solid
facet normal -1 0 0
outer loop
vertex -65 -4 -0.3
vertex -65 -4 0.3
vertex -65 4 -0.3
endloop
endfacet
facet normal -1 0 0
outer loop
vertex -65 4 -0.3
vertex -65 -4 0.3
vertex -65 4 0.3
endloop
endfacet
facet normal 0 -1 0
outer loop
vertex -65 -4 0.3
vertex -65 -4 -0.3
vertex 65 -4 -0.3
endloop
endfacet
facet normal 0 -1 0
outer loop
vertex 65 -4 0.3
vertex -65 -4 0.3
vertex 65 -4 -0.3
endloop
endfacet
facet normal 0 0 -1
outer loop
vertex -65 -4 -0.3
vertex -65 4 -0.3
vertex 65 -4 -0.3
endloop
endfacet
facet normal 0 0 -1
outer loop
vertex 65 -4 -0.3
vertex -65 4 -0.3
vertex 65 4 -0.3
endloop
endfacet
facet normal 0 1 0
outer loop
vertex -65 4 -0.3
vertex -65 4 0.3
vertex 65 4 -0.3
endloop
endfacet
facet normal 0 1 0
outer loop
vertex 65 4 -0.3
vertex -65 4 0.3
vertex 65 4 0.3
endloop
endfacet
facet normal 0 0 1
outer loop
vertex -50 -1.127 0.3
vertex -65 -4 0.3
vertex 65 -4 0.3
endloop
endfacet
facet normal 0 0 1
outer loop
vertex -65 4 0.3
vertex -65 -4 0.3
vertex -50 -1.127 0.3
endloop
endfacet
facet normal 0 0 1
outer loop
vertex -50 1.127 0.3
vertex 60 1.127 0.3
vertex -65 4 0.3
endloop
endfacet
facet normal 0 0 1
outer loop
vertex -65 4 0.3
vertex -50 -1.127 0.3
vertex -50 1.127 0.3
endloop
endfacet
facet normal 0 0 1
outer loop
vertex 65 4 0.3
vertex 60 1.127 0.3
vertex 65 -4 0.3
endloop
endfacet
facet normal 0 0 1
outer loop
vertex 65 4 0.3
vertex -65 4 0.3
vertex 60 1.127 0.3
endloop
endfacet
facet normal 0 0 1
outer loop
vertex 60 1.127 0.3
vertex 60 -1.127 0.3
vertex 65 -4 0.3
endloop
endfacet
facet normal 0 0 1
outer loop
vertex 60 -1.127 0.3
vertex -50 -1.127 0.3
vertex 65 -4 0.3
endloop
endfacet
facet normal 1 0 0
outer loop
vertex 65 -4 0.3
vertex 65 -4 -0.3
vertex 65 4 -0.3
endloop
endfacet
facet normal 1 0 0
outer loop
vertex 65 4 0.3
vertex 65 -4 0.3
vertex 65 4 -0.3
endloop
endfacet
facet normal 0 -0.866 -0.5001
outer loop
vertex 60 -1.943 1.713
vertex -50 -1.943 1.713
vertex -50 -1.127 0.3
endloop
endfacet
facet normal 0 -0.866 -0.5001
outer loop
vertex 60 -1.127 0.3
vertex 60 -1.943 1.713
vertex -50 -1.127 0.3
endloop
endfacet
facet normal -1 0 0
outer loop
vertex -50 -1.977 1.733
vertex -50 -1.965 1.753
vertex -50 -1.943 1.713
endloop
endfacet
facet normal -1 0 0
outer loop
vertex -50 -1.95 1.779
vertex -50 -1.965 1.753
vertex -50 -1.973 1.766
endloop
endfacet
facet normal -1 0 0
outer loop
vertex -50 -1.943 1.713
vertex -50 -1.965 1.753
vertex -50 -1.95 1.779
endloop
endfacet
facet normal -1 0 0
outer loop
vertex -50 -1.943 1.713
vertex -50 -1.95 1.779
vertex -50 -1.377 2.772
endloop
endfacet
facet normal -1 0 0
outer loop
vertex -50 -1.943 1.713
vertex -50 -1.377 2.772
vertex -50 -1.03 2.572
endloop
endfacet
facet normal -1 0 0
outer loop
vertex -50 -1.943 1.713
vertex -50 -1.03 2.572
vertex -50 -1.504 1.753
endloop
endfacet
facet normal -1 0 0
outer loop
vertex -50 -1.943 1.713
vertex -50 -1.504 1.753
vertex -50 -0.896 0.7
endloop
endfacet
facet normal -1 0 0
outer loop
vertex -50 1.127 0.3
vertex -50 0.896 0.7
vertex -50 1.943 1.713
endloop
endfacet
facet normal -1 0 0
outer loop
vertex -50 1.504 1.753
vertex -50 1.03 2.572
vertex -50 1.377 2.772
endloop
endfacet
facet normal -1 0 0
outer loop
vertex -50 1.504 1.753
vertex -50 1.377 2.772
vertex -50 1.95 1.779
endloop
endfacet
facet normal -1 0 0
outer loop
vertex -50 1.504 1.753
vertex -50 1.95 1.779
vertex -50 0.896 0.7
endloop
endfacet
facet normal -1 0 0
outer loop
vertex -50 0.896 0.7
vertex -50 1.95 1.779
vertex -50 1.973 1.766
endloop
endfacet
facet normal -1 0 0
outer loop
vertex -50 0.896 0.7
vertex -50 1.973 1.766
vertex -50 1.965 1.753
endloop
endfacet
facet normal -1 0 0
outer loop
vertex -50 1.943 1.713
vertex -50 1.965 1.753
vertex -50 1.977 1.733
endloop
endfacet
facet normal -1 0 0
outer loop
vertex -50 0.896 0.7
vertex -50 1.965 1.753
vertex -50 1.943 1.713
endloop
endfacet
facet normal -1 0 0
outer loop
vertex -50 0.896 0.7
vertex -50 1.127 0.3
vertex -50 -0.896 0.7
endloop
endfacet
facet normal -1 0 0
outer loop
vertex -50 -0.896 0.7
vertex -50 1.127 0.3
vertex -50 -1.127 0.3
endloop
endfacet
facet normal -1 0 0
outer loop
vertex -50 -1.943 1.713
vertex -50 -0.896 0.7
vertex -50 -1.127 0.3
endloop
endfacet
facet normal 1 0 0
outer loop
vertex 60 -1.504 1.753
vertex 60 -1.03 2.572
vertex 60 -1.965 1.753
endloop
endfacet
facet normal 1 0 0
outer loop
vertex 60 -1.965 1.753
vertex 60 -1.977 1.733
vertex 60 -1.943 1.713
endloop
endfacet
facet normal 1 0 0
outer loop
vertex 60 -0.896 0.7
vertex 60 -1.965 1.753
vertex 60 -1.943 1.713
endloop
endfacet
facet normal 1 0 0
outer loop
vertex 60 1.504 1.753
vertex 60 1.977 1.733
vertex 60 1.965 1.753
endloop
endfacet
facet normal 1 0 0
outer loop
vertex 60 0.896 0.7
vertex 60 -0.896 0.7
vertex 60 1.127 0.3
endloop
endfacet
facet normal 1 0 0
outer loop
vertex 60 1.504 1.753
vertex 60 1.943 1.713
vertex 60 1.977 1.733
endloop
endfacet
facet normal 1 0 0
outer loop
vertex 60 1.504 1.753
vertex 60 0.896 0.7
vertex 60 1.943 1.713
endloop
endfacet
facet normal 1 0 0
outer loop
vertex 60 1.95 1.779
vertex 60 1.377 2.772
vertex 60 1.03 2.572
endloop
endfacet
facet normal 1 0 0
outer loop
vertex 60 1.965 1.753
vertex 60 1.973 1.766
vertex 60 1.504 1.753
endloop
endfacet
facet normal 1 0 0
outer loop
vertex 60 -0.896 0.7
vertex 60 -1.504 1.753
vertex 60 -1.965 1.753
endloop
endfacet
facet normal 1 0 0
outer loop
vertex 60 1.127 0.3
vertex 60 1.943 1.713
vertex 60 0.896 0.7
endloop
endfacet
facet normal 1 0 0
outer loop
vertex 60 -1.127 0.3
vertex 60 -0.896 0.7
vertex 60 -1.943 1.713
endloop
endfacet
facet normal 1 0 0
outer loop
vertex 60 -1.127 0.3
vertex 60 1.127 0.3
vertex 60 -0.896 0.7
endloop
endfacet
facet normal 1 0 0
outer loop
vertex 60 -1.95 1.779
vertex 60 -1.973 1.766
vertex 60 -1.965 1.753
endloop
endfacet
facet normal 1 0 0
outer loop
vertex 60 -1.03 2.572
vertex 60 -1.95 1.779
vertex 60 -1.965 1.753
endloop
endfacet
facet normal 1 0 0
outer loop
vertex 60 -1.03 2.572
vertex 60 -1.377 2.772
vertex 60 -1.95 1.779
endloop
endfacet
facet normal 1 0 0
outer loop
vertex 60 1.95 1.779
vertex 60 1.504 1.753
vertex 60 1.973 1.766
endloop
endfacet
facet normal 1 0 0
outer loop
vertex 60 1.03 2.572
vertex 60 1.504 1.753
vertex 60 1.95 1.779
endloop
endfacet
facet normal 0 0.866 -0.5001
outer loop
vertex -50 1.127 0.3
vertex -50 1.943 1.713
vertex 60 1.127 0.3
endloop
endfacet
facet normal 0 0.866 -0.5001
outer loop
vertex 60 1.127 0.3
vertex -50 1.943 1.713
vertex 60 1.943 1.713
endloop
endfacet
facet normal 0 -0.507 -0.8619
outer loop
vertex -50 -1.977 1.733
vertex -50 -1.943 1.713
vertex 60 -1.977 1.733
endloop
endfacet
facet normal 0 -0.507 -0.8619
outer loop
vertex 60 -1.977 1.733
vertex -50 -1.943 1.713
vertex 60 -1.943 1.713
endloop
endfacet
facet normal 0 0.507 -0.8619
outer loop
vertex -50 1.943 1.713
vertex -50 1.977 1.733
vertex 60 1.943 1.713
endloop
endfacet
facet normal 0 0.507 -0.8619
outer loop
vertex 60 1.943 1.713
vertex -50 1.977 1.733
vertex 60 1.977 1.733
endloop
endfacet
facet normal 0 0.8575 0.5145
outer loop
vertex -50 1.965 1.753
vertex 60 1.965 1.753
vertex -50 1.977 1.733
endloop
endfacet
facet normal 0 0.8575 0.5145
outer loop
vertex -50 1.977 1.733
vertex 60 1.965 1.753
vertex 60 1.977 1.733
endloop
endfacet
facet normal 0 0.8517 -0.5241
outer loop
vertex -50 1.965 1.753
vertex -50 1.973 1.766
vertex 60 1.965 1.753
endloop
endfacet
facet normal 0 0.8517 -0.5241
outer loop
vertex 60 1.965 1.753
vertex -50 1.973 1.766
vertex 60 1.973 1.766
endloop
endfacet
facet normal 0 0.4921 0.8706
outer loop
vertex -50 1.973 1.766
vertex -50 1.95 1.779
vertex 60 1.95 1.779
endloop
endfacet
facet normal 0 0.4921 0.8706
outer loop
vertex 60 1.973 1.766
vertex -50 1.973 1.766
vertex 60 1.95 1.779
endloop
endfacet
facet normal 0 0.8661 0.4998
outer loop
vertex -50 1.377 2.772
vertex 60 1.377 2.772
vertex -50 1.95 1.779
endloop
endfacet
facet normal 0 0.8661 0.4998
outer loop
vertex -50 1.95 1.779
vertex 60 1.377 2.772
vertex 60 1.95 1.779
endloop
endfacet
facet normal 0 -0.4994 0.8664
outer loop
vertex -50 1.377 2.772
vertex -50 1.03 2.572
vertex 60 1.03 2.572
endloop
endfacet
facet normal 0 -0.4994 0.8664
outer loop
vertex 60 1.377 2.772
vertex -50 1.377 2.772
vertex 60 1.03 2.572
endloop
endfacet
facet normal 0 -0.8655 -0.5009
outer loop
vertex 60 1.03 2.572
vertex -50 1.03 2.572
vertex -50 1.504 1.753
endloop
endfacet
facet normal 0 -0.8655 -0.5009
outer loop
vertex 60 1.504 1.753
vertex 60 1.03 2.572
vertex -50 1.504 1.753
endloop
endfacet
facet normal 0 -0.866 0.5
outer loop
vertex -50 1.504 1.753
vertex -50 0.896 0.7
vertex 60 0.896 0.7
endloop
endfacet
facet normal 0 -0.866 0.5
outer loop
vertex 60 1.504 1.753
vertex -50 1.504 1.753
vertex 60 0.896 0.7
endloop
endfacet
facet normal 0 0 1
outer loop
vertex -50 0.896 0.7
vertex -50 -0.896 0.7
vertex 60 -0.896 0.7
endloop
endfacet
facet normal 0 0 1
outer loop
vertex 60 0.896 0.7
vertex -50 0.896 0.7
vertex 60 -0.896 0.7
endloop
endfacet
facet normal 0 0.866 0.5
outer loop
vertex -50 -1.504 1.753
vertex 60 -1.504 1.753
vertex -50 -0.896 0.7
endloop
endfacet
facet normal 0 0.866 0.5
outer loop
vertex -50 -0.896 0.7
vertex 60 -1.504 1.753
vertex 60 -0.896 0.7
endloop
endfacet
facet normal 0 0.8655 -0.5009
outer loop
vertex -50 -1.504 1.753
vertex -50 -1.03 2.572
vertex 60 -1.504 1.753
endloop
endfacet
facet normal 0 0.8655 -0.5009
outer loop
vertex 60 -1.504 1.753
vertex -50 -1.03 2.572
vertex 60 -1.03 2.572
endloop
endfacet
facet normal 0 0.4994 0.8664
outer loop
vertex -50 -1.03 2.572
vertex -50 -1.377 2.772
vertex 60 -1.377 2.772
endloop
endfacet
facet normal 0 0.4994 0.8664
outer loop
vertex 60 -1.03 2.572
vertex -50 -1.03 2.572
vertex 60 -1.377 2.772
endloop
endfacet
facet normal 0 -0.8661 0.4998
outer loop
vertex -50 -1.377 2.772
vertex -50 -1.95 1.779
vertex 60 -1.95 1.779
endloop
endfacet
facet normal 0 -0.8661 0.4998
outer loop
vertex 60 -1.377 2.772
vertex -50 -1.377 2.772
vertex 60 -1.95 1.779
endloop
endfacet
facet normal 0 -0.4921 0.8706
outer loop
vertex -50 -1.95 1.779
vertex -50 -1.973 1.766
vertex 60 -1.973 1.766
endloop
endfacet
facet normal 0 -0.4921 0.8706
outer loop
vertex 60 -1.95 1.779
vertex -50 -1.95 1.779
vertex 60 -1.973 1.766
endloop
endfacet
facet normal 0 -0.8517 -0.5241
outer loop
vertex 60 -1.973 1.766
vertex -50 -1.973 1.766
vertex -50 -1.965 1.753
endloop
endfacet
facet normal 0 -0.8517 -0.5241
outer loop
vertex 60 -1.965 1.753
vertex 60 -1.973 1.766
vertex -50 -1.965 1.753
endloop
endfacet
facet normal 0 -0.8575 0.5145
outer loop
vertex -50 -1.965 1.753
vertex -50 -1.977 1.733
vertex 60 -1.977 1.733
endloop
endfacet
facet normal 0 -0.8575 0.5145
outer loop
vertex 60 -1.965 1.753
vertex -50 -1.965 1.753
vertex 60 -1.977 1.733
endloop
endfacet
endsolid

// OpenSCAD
//Extrusion cover for Misumi 15x15 extrusion by Mark Burton


len = 130;
grip_len = 110;
grip_offset = 5;
width = 8;

translate([grip_offset, 0, 0.2])
	cube([grip_len, 2, 1], true);
cube([len, width, 0.6], true);
for(s = [-1, 1]) {
	translate([grip_offset, s*1.3, 1])
		rotate([s*60, 0, 0]) {
			cube([grip_len, 2, 0.4], true);
			translate([0, s*1.1, 0.4])
				rotate([s*60, 0, 0])
					cube([grip_len, 1.2, 0.4], true);
		}
}
